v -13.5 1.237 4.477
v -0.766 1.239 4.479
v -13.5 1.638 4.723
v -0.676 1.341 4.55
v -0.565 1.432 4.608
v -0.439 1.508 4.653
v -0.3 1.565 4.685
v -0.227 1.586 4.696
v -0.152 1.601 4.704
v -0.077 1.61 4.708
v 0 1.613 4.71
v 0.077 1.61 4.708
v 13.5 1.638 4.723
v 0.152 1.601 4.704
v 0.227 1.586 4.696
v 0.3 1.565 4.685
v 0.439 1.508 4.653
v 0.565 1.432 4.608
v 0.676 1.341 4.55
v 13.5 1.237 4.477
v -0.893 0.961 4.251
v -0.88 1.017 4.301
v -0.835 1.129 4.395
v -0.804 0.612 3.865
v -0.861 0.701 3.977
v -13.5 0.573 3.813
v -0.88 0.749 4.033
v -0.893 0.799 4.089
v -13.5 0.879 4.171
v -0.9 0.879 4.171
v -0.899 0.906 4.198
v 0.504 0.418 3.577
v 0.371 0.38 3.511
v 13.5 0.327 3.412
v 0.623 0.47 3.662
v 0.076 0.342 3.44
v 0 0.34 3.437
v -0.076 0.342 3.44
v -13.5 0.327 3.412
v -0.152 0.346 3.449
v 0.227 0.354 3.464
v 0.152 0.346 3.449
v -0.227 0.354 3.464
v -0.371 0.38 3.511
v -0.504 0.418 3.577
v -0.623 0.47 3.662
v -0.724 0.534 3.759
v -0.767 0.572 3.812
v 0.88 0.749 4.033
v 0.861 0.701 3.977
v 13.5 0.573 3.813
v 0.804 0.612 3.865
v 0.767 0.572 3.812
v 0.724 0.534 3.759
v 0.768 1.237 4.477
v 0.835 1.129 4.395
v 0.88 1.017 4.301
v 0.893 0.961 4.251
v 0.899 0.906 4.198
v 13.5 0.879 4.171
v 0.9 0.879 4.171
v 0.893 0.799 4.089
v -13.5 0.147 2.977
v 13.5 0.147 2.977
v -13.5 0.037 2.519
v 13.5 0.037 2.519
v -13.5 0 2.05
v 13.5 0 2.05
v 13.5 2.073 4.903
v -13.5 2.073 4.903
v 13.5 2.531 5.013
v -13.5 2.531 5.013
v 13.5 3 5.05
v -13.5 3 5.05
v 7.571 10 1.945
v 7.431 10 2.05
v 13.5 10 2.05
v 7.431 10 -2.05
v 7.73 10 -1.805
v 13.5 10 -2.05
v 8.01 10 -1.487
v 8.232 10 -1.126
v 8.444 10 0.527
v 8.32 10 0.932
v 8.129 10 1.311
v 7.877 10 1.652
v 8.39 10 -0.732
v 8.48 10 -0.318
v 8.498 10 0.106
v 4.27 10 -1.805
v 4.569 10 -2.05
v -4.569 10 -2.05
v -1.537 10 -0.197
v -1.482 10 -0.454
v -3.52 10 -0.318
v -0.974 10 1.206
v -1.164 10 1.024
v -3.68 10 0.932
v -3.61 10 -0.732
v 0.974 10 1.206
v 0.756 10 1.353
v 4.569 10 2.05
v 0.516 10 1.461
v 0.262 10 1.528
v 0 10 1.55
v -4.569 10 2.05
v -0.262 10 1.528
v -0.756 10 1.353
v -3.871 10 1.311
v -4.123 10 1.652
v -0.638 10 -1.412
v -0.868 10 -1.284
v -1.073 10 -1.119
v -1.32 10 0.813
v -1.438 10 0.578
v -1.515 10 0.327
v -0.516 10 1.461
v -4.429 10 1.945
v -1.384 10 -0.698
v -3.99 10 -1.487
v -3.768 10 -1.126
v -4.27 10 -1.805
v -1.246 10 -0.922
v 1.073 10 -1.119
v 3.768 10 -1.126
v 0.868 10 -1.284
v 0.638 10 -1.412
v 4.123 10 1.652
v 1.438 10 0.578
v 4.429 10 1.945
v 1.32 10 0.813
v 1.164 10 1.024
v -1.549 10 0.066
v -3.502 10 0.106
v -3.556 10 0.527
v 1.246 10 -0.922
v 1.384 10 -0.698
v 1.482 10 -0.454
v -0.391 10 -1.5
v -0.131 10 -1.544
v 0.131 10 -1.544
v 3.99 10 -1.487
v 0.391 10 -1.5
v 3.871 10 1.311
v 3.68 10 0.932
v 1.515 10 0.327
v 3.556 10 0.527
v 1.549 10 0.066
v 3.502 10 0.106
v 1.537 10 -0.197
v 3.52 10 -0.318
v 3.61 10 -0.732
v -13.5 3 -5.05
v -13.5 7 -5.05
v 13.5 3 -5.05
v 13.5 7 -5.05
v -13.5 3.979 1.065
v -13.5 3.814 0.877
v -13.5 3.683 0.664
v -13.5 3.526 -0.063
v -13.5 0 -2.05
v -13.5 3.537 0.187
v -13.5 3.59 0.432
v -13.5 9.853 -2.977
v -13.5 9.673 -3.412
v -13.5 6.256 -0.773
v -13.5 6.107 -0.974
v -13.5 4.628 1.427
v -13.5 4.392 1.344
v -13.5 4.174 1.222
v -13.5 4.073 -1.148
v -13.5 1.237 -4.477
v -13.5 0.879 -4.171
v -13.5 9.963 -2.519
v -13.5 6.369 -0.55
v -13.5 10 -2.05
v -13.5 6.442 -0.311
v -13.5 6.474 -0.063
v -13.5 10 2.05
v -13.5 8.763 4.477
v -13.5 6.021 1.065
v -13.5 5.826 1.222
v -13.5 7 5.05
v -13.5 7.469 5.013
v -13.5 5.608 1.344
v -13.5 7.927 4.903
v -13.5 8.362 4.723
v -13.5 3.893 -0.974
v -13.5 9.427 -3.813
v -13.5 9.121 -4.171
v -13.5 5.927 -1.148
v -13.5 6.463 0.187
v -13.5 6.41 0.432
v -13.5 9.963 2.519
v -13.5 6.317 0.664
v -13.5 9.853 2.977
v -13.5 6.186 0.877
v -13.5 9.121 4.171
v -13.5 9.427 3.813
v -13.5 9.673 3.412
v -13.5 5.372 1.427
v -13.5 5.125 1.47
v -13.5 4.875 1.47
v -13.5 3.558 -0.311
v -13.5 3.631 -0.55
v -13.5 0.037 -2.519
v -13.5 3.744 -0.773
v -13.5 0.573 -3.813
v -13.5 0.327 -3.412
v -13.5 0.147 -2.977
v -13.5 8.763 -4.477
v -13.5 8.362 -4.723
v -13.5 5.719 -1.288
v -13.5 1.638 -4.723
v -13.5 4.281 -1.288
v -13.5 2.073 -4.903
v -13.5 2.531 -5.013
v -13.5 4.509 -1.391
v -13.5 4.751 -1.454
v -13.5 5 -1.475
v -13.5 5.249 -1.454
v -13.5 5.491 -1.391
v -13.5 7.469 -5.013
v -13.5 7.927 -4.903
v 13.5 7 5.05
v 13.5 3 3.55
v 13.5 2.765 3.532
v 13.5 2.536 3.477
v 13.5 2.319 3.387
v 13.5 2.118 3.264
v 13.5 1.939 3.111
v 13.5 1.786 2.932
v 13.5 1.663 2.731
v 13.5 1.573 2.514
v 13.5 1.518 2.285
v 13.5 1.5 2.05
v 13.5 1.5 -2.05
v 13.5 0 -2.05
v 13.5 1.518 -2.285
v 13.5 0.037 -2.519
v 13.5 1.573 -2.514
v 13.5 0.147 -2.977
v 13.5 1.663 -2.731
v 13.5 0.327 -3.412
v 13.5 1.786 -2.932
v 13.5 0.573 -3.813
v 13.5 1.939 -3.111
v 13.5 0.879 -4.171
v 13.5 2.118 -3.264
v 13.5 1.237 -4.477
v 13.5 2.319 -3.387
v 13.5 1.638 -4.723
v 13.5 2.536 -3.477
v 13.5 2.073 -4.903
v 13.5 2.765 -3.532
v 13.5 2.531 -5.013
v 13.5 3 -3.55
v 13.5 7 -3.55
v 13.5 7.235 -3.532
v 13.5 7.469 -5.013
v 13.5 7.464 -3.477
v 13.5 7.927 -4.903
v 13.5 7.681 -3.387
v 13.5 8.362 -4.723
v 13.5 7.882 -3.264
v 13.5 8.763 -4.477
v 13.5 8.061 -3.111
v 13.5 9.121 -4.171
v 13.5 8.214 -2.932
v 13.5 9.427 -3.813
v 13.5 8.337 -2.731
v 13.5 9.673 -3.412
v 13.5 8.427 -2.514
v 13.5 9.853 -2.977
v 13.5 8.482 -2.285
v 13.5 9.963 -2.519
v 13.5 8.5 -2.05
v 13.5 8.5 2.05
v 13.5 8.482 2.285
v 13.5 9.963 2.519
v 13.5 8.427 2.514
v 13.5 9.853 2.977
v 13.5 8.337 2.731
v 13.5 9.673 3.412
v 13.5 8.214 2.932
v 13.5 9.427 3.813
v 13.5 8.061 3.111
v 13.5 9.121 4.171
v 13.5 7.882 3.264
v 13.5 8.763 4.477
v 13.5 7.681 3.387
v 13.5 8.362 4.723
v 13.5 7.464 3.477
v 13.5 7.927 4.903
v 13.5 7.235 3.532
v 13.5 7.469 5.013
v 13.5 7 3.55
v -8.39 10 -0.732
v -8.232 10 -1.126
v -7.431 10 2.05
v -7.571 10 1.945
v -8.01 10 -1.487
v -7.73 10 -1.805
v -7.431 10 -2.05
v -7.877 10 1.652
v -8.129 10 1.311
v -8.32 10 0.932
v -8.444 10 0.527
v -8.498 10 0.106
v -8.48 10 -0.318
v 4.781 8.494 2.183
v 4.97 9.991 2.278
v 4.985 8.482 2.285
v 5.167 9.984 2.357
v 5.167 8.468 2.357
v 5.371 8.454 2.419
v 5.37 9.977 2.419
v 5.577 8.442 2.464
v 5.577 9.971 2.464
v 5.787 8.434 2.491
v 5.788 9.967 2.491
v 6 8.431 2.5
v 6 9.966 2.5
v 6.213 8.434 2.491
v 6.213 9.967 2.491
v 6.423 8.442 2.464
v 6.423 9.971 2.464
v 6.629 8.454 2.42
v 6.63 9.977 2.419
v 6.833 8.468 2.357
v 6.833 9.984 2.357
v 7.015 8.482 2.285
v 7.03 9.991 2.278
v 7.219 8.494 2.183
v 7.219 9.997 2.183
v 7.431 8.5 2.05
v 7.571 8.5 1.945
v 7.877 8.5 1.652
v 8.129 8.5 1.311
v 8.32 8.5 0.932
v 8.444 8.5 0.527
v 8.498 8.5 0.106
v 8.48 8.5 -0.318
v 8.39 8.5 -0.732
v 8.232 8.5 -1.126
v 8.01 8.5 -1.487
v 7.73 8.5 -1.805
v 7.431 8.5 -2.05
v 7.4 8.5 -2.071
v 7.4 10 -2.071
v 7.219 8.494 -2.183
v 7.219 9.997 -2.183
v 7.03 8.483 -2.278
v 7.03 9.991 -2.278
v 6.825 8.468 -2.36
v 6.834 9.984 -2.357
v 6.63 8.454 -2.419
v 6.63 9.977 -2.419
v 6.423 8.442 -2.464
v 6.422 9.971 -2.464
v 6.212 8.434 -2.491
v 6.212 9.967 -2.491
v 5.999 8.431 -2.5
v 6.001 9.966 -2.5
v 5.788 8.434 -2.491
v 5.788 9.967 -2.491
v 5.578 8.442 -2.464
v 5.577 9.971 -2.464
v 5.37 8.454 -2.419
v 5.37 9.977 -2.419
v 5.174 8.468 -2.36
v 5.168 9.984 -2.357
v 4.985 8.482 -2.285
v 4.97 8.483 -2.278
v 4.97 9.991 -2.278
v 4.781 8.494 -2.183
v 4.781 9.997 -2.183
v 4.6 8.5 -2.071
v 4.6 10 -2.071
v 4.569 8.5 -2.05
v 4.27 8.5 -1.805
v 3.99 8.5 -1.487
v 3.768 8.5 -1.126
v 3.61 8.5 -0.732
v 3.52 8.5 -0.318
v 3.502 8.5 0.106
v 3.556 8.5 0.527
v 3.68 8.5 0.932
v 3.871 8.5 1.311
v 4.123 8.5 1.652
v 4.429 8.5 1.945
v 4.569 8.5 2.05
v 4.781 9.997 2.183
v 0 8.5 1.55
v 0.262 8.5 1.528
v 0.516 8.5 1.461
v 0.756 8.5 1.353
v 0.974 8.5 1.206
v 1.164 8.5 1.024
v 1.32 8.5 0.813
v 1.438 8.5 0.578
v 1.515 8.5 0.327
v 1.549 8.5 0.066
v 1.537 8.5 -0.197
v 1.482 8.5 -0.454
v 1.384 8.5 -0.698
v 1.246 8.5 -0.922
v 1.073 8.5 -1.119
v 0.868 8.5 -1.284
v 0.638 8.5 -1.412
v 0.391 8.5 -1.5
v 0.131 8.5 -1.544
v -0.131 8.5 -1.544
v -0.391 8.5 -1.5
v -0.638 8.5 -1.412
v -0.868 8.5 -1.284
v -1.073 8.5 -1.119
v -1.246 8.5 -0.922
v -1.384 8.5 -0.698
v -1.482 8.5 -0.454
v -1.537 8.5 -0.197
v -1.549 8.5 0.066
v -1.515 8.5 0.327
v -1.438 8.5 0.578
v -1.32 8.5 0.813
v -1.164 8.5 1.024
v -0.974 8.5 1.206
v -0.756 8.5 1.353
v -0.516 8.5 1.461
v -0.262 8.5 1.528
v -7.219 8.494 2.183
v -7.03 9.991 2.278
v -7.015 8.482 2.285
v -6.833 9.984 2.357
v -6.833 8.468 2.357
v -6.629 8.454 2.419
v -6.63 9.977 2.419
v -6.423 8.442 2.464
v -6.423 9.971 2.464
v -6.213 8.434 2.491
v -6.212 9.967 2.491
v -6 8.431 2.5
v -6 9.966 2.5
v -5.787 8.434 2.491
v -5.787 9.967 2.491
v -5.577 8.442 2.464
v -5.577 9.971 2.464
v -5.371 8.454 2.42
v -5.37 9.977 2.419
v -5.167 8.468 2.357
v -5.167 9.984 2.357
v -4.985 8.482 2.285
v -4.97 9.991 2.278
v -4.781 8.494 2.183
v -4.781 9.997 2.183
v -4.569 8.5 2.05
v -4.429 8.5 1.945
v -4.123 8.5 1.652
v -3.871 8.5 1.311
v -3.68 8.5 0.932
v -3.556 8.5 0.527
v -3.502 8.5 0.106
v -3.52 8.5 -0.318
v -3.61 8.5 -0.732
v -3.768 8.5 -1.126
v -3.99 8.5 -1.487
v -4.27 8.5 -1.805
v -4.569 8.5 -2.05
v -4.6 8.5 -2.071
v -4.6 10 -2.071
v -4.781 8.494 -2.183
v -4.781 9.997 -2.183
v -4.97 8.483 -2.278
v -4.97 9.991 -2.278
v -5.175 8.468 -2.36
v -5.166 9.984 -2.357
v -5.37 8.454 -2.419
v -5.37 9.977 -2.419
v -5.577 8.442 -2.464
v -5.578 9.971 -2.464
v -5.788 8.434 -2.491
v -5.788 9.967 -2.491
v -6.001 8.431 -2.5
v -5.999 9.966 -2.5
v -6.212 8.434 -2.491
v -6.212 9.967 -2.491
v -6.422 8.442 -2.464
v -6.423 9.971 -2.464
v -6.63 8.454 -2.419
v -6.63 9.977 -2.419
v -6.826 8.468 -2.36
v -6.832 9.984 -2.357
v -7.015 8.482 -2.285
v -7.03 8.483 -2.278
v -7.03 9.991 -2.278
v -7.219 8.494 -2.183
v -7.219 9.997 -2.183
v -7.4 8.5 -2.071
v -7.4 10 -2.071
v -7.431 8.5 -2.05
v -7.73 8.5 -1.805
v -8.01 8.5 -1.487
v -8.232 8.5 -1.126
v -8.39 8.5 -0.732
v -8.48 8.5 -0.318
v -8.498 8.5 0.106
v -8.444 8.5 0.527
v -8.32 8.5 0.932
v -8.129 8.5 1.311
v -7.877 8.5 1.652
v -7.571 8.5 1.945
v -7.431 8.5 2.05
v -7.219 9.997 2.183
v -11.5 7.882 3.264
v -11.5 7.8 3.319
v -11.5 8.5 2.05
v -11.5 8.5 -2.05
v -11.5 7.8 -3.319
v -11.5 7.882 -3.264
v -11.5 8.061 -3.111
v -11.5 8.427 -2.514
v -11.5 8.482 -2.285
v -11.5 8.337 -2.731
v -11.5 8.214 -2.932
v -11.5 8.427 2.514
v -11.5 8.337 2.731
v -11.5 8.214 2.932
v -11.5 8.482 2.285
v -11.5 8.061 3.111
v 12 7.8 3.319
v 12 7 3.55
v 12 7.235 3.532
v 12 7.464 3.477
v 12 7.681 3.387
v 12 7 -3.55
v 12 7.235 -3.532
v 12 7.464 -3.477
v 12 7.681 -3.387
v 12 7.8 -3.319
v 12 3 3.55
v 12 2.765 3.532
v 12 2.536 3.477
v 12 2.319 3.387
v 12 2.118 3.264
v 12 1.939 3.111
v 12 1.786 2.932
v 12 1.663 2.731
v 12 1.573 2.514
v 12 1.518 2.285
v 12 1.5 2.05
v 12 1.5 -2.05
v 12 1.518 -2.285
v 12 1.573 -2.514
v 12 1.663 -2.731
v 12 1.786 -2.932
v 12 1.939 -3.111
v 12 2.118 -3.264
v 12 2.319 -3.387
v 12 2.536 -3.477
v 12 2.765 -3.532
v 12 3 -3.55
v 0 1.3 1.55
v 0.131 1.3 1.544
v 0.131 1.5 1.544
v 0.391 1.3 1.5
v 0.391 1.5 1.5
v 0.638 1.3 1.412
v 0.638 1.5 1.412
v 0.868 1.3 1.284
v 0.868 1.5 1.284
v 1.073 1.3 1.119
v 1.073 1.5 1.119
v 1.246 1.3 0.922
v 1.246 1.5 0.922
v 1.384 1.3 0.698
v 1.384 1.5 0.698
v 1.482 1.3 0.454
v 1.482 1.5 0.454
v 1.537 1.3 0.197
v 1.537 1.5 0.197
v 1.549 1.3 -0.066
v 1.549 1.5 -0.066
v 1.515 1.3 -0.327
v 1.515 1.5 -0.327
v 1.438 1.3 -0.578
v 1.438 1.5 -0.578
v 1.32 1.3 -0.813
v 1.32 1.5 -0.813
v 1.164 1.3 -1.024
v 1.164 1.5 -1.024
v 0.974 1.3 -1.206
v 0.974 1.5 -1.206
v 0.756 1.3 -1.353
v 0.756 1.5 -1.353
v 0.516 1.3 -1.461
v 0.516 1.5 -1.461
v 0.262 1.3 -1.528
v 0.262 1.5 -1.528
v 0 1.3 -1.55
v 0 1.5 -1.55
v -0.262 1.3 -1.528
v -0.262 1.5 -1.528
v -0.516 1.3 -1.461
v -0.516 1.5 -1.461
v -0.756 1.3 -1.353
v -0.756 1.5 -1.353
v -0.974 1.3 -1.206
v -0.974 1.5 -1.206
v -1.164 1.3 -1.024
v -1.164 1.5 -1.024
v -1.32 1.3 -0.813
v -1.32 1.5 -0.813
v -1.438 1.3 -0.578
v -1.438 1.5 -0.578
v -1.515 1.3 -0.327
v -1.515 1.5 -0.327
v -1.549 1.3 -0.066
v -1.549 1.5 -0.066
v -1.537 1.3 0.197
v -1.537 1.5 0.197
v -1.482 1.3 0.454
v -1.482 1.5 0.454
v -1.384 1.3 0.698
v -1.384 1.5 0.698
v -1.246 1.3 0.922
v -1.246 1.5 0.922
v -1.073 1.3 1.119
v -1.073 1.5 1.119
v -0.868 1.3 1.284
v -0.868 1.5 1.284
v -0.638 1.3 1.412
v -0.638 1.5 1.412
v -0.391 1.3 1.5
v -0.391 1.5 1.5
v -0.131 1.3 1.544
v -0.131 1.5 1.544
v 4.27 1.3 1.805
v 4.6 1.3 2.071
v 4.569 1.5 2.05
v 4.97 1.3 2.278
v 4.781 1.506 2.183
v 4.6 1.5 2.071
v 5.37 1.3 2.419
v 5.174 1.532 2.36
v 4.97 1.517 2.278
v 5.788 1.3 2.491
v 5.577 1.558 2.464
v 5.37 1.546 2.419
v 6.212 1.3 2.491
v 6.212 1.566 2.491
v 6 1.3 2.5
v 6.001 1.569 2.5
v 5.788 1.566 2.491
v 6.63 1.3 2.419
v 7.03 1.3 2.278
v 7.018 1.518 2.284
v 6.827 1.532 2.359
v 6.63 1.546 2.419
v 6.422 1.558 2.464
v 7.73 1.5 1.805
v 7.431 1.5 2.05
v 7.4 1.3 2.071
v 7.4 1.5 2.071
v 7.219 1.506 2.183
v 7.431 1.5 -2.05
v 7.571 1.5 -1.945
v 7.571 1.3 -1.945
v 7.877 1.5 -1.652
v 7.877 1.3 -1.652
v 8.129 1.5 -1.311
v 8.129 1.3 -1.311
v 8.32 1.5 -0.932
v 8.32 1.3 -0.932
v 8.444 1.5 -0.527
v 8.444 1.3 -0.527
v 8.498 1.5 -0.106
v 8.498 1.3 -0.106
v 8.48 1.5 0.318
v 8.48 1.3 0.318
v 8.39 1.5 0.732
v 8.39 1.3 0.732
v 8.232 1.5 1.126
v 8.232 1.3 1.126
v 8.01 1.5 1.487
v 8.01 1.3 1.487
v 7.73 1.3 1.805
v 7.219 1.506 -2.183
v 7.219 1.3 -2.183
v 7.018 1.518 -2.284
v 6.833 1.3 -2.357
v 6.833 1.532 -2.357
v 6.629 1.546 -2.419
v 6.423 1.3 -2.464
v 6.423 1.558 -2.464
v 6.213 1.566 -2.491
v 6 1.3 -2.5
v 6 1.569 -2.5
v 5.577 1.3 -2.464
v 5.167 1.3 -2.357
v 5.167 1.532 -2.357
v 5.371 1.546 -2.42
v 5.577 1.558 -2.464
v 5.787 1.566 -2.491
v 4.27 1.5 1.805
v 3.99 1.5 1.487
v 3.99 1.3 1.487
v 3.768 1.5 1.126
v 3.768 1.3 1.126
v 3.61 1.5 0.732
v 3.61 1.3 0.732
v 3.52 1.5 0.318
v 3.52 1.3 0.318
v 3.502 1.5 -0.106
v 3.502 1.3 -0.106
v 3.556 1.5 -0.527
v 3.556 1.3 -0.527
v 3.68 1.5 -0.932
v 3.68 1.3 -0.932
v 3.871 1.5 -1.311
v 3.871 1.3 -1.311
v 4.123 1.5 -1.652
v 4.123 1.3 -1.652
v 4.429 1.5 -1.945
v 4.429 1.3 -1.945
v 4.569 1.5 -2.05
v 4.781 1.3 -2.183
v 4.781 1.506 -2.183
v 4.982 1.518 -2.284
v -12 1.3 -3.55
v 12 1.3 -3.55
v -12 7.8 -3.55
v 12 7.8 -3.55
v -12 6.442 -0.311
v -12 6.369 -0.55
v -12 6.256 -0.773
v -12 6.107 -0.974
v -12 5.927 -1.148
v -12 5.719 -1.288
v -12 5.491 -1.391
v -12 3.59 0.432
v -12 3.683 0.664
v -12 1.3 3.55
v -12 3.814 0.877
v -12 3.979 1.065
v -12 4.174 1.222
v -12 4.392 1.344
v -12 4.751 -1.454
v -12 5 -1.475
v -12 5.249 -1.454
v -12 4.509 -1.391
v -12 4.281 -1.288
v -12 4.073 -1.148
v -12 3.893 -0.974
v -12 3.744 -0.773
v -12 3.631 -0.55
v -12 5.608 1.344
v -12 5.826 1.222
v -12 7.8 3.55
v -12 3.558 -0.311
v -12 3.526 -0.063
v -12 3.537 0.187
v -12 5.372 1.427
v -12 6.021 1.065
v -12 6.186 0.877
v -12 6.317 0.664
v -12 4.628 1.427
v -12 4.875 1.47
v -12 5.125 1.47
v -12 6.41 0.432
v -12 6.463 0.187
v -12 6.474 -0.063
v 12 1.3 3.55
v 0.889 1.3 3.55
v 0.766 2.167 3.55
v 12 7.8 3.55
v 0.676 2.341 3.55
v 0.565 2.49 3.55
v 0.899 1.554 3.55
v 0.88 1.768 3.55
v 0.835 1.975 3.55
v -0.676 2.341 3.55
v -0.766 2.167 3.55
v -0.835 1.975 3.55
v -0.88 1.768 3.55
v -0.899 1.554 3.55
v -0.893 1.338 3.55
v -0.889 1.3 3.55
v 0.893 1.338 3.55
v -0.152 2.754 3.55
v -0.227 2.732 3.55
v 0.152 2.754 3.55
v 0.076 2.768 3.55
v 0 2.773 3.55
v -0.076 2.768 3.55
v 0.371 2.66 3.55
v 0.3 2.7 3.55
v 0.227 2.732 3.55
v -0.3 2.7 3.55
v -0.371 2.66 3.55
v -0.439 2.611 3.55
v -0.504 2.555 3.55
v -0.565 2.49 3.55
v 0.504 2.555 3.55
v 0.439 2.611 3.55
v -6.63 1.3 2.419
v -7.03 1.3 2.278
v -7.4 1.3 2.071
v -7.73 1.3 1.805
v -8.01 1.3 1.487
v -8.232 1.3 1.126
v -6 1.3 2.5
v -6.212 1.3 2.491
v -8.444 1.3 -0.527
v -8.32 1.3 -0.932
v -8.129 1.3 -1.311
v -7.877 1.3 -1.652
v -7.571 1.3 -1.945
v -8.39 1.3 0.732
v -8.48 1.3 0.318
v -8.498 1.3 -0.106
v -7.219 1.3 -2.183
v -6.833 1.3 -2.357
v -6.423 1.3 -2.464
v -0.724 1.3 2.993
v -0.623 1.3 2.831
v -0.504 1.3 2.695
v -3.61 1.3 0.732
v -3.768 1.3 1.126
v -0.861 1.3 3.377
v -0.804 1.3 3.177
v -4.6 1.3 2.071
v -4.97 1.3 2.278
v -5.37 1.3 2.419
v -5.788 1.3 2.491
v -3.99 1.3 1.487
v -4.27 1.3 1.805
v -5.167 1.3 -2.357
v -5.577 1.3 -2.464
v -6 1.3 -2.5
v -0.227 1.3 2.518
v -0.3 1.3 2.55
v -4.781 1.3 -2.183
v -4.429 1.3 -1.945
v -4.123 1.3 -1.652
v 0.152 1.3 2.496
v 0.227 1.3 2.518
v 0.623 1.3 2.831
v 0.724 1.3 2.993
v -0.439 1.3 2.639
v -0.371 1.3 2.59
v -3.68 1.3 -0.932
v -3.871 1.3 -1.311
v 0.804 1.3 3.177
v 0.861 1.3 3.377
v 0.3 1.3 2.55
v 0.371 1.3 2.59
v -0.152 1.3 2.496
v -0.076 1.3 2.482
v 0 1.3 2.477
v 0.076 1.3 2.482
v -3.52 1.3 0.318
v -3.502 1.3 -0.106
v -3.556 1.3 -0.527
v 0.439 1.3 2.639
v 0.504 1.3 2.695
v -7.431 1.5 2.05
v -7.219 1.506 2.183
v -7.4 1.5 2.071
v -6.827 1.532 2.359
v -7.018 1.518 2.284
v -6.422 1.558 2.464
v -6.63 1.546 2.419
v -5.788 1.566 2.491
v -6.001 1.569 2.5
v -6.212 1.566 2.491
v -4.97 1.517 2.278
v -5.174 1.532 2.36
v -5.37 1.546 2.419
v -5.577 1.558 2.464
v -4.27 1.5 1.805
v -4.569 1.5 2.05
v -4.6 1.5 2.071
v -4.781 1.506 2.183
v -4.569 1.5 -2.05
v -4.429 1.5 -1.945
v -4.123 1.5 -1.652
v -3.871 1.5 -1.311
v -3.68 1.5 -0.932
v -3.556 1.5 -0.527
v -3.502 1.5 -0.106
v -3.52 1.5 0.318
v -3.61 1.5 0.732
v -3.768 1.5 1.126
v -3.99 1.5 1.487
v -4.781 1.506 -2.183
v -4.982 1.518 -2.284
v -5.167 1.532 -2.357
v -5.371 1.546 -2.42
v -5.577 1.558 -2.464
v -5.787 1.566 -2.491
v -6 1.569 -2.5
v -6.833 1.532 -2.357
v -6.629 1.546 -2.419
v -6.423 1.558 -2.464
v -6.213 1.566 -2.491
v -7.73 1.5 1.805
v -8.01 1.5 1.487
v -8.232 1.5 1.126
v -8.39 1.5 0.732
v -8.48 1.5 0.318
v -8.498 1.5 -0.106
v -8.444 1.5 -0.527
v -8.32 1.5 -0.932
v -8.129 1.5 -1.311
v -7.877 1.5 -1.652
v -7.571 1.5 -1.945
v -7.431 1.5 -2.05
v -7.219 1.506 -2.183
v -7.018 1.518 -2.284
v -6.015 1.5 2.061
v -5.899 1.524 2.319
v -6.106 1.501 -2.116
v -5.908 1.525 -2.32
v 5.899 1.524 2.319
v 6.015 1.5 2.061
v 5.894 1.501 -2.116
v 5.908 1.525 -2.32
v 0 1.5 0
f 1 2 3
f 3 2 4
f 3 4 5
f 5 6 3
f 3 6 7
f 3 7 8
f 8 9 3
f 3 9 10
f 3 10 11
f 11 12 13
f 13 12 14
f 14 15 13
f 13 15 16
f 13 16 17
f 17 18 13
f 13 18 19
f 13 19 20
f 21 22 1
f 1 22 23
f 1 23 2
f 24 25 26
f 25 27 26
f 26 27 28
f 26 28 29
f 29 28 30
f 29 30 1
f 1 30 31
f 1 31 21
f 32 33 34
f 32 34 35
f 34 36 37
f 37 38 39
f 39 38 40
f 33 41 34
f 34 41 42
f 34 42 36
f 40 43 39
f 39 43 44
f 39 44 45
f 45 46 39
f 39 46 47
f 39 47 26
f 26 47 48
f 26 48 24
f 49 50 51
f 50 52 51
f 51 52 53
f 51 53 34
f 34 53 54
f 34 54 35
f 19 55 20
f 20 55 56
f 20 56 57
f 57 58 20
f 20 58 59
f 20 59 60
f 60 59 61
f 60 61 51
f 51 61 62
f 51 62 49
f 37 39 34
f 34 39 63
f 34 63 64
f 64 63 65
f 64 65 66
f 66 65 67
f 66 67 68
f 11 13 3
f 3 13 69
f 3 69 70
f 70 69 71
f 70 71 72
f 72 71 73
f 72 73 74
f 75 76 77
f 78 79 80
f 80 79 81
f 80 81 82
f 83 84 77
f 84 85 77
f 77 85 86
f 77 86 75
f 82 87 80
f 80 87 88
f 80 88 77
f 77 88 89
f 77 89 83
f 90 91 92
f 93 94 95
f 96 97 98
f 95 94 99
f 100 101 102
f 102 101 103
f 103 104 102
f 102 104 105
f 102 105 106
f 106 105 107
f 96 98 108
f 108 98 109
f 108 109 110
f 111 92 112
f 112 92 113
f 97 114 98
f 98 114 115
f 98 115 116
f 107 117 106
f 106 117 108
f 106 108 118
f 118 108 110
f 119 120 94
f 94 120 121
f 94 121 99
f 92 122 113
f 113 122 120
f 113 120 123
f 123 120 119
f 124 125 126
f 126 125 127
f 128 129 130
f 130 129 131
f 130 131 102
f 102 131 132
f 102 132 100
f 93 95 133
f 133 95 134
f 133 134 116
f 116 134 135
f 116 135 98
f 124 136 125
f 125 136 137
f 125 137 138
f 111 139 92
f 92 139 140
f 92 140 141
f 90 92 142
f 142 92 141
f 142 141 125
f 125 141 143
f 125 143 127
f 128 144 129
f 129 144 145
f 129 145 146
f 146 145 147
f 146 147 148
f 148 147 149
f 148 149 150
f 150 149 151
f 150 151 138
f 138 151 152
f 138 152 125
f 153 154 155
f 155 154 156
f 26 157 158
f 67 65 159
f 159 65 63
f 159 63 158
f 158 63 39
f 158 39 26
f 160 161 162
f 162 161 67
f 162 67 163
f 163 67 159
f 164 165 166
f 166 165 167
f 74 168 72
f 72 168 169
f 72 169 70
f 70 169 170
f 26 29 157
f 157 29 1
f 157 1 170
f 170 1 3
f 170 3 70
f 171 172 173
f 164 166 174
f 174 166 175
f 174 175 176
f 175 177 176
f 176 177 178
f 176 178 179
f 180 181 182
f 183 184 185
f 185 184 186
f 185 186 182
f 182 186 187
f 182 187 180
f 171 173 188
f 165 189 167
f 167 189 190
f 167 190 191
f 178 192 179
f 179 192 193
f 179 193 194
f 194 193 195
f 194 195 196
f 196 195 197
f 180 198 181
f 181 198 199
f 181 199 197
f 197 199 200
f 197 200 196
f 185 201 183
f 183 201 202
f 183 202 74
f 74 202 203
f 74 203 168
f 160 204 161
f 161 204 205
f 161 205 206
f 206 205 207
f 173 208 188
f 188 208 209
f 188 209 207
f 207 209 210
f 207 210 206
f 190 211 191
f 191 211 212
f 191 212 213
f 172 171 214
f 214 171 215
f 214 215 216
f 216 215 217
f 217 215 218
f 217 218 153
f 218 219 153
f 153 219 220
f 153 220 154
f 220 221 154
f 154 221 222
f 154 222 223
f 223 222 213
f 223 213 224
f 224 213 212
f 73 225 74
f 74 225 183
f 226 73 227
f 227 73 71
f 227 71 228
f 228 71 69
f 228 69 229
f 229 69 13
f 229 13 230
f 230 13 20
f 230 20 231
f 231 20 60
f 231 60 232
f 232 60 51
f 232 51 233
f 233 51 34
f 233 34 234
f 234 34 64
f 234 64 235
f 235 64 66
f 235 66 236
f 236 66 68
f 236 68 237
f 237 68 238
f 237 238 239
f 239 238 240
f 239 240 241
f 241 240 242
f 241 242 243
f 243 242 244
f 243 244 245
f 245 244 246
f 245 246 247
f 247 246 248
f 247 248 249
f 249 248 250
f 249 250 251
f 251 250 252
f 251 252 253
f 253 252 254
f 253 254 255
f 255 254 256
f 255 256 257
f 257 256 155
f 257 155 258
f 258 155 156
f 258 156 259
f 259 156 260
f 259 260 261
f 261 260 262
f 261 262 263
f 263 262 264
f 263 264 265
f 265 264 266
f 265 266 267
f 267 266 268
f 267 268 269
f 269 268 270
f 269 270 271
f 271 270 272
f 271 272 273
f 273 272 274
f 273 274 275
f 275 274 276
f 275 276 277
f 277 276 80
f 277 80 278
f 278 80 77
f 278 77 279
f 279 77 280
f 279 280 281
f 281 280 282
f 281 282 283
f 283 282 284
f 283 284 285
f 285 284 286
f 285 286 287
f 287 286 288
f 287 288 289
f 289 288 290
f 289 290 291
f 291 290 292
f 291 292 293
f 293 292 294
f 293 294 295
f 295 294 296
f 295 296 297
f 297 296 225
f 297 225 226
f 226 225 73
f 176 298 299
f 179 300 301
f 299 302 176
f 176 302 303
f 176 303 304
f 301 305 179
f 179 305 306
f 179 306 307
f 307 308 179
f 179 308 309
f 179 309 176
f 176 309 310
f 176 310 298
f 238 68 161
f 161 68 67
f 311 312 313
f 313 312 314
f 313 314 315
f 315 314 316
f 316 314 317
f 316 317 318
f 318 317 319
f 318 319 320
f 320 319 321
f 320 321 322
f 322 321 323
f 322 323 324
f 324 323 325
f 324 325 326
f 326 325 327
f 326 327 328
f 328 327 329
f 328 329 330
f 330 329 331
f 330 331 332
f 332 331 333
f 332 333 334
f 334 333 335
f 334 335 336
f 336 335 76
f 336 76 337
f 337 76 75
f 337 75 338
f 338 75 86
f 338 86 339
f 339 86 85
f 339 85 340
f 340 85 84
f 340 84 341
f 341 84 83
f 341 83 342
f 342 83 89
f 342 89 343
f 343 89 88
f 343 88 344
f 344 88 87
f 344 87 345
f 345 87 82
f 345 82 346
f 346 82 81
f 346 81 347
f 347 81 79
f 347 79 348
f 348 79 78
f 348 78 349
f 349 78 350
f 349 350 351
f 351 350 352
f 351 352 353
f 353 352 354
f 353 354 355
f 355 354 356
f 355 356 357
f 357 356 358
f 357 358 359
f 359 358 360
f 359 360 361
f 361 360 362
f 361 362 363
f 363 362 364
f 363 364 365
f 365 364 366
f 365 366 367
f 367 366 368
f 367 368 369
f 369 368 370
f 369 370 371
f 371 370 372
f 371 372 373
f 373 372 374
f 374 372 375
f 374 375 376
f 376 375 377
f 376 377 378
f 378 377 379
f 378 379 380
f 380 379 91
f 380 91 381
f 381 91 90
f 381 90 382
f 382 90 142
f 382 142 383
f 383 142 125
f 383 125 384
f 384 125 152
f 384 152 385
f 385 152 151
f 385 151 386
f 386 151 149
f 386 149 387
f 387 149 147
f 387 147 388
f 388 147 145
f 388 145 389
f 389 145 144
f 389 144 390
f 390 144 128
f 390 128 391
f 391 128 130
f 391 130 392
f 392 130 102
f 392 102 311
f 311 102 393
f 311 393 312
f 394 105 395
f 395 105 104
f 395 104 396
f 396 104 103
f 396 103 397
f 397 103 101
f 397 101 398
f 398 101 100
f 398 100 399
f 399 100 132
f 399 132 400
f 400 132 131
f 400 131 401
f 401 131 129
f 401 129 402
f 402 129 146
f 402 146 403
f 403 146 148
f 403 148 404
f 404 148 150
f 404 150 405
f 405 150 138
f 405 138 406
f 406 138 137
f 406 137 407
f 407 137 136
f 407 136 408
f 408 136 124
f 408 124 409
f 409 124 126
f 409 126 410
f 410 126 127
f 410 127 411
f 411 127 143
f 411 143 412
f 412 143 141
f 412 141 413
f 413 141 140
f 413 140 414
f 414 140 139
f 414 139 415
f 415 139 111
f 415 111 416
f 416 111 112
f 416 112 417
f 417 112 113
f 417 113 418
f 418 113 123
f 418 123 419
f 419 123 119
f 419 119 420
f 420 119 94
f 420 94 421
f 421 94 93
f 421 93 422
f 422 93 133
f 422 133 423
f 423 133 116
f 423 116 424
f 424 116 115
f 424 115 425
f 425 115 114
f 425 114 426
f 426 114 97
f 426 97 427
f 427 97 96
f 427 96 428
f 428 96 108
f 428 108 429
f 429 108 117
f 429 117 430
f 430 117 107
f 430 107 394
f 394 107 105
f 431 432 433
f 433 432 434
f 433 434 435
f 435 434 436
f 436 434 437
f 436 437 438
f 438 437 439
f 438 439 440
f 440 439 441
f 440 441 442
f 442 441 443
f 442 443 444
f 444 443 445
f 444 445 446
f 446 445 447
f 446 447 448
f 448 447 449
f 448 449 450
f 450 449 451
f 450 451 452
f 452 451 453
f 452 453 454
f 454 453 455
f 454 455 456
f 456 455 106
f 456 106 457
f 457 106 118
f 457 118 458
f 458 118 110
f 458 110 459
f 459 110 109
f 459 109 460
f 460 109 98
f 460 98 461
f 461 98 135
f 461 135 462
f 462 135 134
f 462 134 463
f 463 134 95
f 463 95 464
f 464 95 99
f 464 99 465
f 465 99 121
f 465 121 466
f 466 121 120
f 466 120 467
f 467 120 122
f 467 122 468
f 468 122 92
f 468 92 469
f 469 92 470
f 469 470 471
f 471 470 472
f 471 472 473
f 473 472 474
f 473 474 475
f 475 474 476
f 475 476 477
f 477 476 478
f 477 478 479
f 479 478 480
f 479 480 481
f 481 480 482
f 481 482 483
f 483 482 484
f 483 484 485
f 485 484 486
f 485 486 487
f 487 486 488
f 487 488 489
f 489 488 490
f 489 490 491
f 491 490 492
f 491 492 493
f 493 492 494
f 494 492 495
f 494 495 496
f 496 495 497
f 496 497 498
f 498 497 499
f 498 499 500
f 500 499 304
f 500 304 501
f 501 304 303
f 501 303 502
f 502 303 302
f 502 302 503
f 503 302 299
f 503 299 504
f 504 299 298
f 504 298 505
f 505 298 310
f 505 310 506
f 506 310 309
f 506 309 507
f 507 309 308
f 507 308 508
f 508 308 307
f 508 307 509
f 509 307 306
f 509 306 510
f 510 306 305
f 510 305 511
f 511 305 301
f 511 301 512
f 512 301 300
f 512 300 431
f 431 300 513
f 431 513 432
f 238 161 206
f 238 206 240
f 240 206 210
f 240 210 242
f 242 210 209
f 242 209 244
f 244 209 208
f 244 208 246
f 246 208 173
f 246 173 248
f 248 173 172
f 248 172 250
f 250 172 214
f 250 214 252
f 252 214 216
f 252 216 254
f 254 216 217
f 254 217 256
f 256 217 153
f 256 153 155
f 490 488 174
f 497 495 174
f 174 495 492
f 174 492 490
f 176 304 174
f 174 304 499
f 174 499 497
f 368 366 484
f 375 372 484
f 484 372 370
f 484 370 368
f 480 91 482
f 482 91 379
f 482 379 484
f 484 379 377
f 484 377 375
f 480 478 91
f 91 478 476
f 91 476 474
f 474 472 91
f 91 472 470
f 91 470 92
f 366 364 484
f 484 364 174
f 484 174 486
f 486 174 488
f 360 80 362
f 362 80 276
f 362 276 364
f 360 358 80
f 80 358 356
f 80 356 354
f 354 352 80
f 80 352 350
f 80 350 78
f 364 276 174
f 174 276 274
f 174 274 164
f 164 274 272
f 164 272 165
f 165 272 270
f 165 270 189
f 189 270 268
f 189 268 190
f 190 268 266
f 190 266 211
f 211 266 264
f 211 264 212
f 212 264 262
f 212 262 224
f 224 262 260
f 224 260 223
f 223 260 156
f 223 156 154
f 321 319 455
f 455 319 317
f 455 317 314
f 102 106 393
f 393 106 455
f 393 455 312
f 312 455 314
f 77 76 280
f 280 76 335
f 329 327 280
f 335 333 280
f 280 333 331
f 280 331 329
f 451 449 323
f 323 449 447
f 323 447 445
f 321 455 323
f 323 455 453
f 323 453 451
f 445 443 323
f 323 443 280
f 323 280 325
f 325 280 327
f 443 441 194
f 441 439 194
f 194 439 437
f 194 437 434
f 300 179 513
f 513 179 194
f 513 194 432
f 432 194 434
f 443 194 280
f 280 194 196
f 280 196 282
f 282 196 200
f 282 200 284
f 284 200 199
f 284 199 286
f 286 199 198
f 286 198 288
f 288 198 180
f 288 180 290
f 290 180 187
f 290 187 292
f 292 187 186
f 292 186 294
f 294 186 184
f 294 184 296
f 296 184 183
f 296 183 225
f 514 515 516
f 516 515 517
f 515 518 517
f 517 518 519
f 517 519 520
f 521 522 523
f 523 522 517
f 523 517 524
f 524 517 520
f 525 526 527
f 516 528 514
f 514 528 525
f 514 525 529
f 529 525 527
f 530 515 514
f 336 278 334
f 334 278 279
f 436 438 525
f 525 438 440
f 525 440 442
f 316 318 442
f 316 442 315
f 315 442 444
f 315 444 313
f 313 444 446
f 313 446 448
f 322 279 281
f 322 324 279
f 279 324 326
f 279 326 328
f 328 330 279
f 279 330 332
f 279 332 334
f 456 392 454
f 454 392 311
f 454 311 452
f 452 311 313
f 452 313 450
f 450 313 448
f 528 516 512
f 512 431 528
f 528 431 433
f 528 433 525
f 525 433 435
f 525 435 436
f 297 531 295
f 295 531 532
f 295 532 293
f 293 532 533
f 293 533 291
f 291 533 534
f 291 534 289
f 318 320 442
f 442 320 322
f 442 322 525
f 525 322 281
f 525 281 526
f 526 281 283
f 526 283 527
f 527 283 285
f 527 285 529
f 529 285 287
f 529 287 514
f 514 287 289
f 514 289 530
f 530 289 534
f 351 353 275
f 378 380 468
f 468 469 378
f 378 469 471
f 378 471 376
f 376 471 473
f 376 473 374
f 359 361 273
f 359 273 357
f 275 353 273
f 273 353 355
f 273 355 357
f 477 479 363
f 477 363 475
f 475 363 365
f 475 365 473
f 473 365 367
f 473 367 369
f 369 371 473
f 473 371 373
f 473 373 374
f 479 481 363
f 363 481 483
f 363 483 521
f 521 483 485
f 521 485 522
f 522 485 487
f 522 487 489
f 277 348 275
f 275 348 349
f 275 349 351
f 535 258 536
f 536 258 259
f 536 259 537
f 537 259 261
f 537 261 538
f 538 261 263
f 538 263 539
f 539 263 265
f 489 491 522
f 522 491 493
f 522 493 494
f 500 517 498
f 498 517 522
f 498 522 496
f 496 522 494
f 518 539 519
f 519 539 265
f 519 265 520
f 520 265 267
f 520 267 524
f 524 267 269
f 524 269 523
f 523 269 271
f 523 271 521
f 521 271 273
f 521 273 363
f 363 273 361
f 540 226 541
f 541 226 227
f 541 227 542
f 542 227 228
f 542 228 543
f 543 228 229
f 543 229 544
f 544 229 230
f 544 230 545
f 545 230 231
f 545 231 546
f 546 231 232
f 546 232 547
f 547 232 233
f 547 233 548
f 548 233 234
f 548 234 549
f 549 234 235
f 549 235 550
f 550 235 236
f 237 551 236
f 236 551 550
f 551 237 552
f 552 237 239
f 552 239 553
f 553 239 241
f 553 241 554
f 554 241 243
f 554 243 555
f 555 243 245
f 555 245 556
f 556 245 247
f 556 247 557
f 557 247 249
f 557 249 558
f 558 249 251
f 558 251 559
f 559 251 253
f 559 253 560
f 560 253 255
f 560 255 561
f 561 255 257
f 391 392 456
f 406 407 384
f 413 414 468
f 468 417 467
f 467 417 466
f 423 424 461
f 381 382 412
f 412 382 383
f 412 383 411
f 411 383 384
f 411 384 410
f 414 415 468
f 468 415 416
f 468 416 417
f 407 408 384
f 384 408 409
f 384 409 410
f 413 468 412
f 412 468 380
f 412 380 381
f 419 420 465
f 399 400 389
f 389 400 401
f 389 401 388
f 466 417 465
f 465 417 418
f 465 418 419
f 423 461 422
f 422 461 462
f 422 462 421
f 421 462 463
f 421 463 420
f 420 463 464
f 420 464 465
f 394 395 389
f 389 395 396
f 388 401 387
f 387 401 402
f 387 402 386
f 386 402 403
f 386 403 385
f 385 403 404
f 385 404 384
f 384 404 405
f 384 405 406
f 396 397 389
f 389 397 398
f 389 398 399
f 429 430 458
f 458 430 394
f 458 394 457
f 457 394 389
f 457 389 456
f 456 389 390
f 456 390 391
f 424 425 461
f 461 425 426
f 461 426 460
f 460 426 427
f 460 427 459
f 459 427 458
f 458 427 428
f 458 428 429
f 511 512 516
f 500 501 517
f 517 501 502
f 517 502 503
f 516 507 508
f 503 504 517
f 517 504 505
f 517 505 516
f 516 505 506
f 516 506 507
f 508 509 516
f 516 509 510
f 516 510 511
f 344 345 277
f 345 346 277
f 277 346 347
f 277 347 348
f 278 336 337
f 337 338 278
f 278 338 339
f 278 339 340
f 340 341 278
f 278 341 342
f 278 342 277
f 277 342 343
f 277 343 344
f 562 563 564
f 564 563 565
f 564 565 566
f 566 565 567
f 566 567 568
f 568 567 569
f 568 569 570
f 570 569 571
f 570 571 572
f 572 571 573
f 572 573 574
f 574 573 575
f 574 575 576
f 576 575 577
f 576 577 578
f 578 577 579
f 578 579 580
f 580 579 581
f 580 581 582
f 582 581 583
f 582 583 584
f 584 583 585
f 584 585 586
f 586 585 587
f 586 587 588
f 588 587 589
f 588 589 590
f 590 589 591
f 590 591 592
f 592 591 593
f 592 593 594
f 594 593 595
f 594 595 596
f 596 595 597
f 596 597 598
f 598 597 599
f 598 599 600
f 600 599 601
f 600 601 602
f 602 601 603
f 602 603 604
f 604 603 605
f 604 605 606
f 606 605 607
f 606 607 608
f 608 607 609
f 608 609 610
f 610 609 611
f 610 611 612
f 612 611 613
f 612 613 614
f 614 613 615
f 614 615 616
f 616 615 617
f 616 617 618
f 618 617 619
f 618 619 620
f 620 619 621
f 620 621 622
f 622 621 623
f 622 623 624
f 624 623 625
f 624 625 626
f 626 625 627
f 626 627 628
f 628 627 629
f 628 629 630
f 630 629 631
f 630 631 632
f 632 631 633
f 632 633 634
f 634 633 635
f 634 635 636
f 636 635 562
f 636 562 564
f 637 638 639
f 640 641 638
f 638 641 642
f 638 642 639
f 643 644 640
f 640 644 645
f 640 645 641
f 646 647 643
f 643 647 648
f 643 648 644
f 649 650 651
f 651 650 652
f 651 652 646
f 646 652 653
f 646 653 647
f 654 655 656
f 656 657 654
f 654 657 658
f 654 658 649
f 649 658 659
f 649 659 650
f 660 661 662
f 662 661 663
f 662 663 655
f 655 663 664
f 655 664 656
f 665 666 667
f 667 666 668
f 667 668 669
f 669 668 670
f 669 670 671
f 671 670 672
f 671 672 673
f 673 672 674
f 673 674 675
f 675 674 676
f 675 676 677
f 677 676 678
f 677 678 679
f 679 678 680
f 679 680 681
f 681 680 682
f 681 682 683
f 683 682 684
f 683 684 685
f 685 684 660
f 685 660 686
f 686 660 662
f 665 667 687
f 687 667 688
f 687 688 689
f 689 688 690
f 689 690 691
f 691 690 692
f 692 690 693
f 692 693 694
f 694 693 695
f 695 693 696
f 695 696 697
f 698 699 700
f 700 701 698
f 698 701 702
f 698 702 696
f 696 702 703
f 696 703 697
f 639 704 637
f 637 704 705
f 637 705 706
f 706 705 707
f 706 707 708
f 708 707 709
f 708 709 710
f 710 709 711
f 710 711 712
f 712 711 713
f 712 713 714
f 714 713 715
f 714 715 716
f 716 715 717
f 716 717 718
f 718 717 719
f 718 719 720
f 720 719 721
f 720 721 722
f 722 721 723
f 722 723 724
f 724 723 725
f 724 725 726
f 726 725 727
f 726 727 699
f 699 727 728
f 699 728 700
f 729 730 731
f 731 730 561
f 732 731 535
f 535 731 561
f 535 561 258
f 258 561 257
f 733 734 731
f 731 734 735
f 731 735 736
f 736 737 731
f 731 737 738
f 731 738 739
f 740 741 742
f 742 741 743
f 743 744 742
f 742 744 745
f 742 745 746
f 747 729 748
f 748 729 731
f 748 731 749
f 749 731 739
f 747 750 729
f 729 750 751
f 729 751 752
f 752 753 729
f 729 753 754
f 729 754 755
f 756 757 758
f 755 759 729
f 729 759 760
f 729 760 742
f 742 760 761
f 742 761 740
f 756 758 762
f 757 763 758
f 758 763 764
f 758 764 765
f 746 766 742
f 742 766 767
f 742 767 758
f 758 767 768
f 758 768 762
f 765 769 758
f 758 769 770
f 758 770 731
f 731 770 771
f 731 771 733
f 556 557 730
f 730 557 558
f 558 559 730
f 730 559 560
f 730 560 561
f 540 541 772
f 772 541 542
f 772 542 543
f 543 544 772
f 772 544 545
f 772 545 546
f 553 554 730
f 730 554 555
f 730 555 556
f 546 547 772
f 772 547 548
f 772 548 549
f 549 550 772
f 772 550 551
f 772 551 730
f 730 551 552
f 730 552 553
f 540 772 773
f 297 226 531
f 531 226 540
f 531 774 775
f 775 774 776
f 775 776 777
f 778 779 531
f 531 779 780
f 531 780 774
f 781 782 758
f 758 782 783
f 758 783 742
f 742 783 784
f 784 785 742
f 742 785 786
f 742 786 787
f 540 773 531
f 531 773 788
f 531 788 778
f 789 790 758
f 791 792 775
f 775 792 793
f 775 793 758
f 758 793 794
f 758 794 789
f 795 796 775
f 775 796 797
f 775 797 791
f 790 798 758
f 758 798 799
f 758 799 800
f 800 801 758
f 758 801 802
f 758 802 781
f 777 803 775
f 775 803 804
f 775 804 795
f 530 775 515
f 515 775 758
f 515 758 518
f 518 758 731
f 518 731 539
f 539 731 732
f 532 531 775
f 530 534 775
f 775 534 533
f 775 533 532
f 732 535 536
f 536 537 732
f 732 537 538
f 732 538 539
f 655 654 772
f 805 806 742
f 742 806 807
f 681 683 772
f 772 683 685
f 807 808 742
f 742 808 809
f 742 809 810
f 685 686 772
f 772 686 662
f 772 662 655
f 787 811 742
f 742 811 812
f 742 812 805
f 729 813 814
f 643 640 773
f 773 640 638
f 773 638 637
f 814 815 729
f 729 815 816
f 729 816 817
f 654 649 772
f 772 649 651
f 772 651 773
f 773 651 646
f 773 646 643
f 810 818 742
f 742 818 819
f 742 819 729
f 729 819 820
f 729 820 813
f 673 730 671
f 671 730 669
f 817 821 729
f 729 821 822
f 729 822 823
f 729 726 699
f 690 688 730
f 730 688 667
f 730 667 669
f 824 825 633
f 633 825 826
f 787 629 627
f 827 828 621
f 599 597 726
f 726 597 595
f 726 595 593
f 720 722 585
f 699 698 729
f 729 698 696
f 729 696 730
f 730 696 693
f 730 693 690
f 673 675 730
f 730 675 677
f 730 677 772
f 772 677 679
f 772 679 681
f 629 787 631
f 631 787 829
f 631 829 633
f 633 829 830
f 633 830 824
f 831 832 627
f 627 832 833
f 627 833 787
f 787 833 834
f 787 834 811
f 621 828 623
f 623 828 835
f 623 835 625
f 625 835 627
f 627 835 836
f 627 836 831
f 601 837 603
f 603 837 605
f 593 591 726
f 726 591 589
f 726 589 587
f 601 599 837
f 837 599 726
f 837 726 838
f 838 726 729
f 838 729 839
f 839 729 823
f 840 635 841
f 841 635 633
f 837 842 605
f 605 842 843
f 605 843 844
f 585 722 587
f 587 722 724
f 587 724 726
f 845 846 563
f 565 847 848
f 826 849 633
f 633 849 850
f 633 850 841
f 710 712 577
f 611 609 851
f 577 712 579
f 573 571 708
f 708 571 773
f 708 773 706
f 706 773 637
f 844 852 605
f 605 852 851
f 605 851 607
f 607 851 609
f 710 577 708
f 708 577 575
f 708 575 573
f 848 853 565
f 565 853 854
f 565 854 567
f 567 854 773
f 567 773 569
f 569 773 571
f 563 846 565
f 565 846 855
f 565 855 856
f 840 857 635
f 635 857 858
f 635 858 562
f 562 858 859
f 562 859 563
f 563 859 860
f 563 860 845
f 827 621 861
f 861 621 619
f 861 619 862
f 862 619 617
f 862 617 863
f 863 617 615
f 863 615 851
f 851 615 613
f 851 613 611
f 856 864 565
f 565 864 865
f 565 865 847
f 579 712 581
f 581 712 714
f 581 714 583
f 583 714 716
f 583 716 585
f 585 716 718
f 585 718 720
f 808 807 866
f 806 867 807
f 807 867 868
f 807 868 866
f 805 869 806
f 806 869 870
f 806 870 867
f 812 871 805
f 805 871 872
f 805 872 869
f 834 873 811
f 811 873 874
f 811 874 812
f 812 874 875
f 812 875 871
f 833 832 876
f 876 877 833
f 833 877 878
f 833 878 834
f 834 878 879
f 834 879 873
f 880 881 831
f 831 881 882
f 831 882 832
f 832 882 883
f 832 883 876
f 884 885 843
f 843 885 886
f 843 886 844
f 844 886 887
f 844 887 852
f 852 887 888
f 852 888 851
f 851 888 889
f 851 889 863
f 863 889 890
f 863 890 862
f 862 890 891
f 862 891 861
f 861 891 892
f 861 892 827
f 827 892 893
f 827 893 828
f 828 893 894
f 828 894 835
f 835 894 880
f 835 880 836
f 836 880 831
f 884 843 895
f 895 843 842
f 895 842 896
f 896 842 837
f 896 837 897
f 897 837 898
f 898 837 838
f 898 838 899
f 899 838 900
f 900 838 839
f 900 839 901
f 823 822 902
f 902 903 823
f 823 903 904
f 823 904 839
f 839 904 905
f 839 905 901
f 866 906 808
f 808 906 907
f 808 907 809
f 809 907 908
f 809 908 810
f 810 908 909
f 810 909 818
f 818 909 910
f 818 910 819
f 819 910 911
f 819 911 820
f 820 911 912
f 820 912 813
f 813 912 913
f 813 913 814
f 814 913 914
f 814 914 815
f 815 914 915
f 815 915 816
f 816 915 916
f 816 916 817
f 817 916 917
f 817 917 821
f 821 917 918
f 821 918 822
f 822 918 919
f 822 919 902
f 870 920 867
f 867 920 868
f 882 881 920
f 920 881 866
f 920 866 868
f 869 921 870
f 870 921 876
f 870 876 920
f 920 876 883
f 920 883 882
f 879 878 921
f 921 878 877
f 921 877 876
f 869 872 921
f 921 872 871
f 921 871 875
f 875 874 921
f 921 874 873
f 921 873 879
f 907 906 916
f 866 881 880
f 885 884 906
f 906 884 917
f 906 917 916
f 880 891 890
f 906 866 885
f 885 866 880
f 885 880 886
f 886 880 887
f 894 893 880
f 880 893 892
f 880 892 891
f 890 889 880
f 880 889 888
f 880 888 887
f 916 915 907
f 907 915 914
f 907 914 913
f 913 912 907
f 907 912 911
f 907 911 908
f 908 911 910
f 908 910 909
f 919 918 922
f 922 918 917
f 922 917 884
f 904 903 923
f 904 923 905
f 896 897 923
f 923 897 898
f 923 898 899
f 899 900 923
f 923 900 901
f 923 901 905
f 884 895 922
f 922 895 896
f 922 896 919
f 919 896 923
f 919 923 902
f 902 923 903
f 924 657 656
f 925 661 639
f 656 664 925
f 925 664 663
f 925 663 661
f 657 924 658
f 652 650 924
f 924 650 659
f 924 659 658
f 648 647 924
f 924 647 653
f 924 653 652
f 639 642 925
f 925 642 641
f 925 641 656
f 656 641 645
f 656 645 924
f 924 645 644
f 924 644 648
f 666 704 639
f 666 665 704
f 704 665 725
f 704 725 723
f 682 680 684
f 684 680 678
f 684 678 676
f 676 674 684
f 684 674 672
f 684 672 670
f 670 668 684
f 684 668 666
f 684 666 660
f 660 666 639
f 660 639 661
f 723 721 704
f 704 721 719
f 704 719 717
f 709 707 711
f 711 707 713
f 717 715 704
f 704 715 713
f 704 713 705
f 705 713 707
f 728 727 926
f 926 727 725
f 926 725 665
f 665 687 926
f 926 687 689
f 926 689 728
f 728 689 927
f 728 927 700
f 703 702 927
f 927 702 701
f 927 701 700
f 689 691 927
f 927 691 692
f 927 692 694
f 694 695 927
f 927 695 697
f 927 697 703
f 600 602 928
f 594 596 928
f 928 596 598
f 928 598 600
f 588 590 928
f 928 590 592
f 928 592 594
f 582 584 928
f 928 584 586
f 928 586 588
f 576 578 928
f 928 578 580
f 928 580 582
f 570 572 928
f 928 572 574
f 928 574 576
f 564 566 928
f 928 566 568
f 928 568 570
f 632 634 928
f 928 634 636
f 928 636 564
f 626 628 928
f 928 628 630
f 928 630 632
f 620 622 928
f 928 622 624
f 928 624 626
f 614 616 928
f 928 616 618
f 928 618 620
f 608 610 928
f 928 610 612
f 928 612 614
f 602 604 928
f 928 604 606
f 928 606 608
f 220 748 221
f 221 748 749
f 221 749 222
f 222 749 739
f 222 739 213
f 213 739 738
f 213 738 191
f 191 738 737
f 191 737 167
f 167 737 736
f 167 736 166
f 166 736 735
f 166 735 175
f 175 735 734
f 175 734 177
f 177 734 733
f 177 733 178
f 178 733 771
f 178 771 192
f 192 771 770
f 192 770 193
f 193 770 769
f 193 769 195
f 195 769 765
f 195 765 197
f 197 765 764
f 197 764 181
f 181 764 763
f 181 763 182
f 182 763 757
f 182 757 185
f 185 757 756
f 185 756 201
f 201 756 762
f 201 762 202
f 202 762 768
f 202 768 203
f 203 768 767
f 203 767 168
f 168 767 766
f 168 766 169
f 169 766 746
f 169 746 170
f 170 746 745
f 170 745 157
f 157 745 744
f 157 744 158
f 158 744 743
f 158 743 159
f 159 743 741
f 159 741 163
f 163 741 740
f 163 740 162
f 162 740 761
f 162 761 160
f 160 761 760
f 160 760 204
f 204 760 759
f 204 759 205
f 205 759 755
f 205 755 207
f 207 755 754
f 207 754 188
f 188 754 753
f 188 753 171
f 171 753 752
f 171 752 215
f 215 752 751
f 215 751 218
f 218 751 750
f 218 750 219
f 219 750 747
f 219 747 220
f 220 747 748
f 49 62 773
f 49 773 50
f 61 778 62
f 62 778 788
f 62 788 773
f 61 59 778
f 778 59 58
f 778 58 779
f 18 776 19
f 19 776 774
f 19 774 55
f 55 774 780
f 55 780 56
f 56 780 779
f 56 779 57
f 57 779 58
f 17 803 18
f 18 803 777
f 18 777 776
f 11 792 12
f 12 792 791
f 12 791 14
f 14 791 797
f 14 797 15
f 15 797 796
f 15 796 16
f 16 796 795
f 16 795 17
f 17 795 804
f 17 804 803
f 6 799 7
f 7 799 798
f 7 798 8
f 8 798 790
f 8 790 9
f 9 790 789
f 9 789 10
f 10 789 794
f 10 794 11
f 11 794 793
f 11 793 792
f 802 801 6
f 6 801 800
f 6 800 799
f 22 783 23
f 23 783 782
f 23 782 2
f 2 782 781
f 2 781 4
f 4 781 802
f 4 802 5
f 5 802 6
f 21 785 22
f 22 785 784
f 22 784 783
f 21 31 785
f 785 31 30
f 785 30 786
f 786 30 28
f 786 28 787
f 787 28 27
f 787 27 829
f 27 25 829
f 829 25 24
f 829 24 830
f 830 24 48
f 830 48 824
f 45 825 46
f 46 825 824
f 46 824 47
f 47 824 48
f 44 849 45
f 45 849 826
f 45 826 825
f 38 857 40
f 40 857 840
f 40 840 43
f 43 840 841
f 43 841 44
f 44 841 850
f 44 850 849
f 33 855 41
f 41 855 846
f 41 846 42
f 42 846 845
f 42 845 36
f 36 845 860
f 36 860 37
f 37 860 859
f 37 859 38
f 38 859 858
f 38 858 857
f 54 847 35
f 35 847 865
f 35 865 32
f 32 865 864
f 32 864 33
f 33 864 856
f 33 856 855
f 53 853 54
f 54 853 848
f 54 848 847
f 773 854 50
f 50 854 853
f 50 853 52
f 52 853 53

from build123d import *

# Parameters (mm, degrees)
SKETCH1_W               = 27
SKETCH1_H               = 10.1
SKETCH1_W_2             = 24
SKETCH1_H_2             = 7.1
SKETCH1_R               = 2.5
SKETCH1_R_2             = 1.55
BOSS_EXTRUDE2_DEPTH     = 10
CUT_EXTRUDE2_START      = 10
SKETCH1_5_R             = 2.5
SKETCH1_5_R_2           = 1.55
CUT_EXTRUDE2_DEPTH      = 2.7
FILLET1_R               = 3
CUT_EXTRUDE3_START      = 7.8
SKETCH1_6_W             = 24
SKETCH1_6_H             = 7.1
SKETCH1_6_R             = 2.5
SKETCH1_6_R_2           = 1.55
CUT_EXTRUDE3_DEPTH      = 6.5
SKETCH2_R               = 1.475
CUT_EXTRUDE4_DEPTH      = 25
CUT_EXTRUDE5_DEPTH      = 30.23187487
CUT_EXTRUDE5_DEPTH_BACK = 30.23187487
SKETCH2_3_R             = 1.475
SKETCH3_R               = 0.9
CUT_EXTRUDE6_DEPTH      = 18.54287621


with BuildPart() as part:
    # Sketch1 → Boss-Extrude2 (new body)
    # profile 1 of 5: a face of its own
    with BuildSketch(Plane(origin=(0, 0, 0), x_dir=(1, 0, 0), z_dir=(0, 1, 0))):
        Rectangle(SKETCH1_W, SKETCH1_H)
        Rectangle(SKETCH1_W_2, SKETCH1_H_2, mode=Mode.SUBTRACT)
    # profile 2 of 5: a face of its own
    with BuildSketch(Plane(origin=(0, 0, 0), x_dir=(1, 0, 0), z_dir=(0, 1, 0))):
        Rectangle(SKETCH1_W_2, SKETCH1_H_2)
        with Locations((6, 0)):
            Circle(SKETCH1_R, mode=Mode.SUBTRACT)
        Circle(SKETCH1_R_2, mode=Mode.SUBTRACT)
        with Locations((-6, 0)):
            Circle(SKETCH1_R, mode=Mode.SUBTRACT)
    # profile 3 of 5: a face of its own
    with BuildSketch(Plane(origin=(0, 0, 0), x_dir=(1, 0, 0), z_dir=(0, 1, 0))):
        with Locations((-6, 0)):
            Circle(SKETCH1_R)
    # profile 4 of 5: a face of its own
    with BuildSketch(Plane(origin=(0, 0, 0), x_dir=(1, 0, 0), z_dir=(0, 1, 0))):
        Circle(SKETCH1_R_2)
    # profile 5 of 5: a face of its own
    with BuildSketch(Plane(origin=(0, 0, 0), x_dir=(1, 0, 0), z_dir=(0, 1, 0))):
        with Locations((6, 0)):
            Circle(SKETCH1_R)
    extrude(amount=BOSS_EXTRUDE2_DEPTH)

    # Sketch1<5> → Cut-Extrude2 (cut)
    with BuildSketch(Plane(origin=(0, 0, 0), x_dir=(1, 0, 0), z_dir=(0, 1, 0)).offset(CUT_EXTRUDE2_START)):
        with Locations(Location((6, 0, 0), (0, 0, 270))):
            Circle(SKETCH1_5_R)
        with Locations(Location((0, 0, 0), (0, 0, 270))):
            Circle(SKETCH1_5_R_2)
        with Locations(Location((-6, 0, 0), (0, 0, 270))):
            Circle(SKETCH1_5_R)
    extrude(amount=-CUT_EXTRUDE2_DEPTH, mode=Mode.SUBTRACT)

    # Fillet1
    # the kernel refuses this fillet: 3 mm, written as the material it takes off along each edge
    with BuildSketch(Plane(origin=(21, 10, 5.05), x_dir=(0, 0, -1), z_dir=(-1, 0, 0)), Plane(origin=(-21, 0, -5.05), x_dir=(0, 1, 0), z_dir=(1, 0, 0))) as fillet1_piece_1:
        with BuildLine():
            CenterArc((FILLET1_R, FILLET1_R), FILLET1_R, 180, 90)
            Line((0, FILLET1_R), (0, 0))
            Line((0, 0), (FILLET1_R, 0))
        make_face()
    extrude(amount=42, mode=Mode.SUBTRACT)
    with BuildSketch(Plane(origin=(-21, 10, -5.05), x_dir=(0, -1, 0), z_dir=(1, 0, 0)), Plane(origin=(21, 0, 5.05), x_dir=(0, 0, -1), z_dir=(-1, 0, 0))) as fillet1_piece_2:
        with BuildLine():
            CenterArc((FILLET1_R, -FILLET1_R), FILLET1_R, 90, 90)
            Line((0, -FILLET1_R), (0, 0))
            Line((0, 0), (FILLET1_R, 0))
        make_face()
    extrude(amount=42, mode=Mode.SUBTRACT)

    # Sketch1<6> → Cut-Extrude3 (cut)
    with BuildSketch(Plane(origin=(0, 0, 0), x_dir=(1, 0, 0), z_dir=(0, 1, 0)).offset(CUT_EXTRUDE3_START)):
        Rectangle(SKETCH1_6_W, SKETCH1_6_H)
        with Locations(Location((6, 0, 0), (0, 0, 270))):
            Circle(SKETCH1_6_R, mode=Mode.SUBTRACT)
        with Locations(Location((0, 0, 0), (0, 0, 270))):
            Circle(SKETCH1_6_R_2, mode=Mode.SUBTRACT)
        with Locations(Location((-6, 0, 0), (0, 0, 270))):
            Circle(SKETCH1_6_R, mode=Mode.SUBTRACT)
    extrude(amount=-CUT_EXTRUDE3_DEPTH, mode=Mode.SUBTRACT)

    # Sketch2 → Cut-Extrude4 (cut)
    # profile 1 of 2: a face of its own
    with BuildSketch(Plane(origin=(13.5, 0, 0), x_dir=(0, 0, -1), z_dir=(1, 0, 0))):
        with BuildLine():
            Line((2.05, 8.5), (-2.05, 8.5))
            ThreePointArc((-2.05, 8.5), (-3.110660172, 8.060660172), (-3.55, 7))
            Line((-3.55, 7), (-3.55, 3))
            ThreePointArc((-3.55, 3), (-3.110660172, 1.939339828), (-2.05, 1.5))
            Line((-2.05, 1.5), (2.05, 1.5))
            ThreePointArc((2.05, 1.5), (3.110660172, 1.939339828), (3.55, 3))
            Line((3.55, 3), (3.55, 7))
            ThreePointArc((3.55, 7), (3.110660172, 8.060660172), (2.05, 8.5))
        make_face()
        with Locations((0, 5)):
            Circle(SKETCH2_R, mode=Mode.SUBTRACT)
    # profile 2 of 2: a face of its own
    with BuildSketch(Plane(origin=(13.5, 0, 0), x_dir=(0, 0, -1), z_dir=(1, 0, 0))):
        with Locations((0, 5)):
            Circle(SKETCH2_R)
    extrude(amount=-CUT_EXTRUDE4_DEPTH, mode=Mode.SUBTRACT)

    # Sketch2<3> → Cut-Extrude5 (cut, two sides: drawn at the far end of the back side and taken through both)
    with BuildSketch(Plane(origin=(13.5, 0, 0), x_dir=(0, 0, -1), z_dir=(1, 0, 0)).offset(-CUT_EXTRUDE5_DEPTH_BACK)):
        with Locations((0, 5)):
            Circle(SKETCH2_3_R)
    extrude(amount=CUT_EXTRUDE5_DEPTH + CUT_EXTRUDE5_DEPTH_BACK, mode=Mode.SUBTRACT)

    # Sketch3 → Cut-Extrude6 (cut, through all)
    with BuildSketch(Plane(origin=(0, 0, 0), x_dir=(1, 0, 0), z_dir=(0, -0.7071067811865475, 0.7071067811865477))):
        with Locations(Location((0, 3.570889245, 0), (0, 0, 90))):
            Circle(SKETCH3_R)
    extrude(amount=CUT_EXTRUDE6_DEPTH, mode=Mode.SUBTRACT)


solid = part.part
